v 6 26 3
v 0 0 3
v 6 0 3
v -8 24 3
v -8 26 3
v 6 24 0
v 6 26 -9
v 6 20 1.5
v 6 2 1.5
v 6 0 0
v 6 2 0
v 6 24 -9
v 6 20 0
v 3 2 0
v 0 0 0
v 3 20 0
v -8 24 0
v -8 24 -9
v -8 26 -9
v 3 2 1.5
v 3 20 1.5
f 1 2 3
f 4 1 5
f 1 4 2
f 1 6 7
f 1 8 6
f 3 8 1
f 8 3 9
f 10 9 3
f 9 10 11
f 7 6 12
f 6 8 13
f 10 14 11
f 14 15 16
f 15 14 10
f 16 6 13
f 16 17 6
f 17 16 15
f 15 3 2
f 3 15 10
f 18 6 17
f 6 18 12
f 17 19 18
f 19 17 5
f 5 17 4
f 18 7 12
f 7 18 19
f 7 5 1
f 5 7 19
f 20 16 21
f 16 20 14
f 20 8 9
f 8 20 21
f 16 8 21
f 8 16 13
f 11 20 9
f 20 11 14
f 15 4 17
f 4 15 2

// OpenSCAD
difference(){
// add stuff
group(){
translate([0,0,0])
    cube([6,(18+6),3]);

translate([-8,(18+6),-9])
cube([14,2,12]);
    
}

// take away
group(){
translate([3,2,0])
    cube([3,18,1.5]);
}
}

hull(){
translate([0,0,0])
    cube([1,1,3]);

translate([-8,(18+6),0])
    cube([8,2,3]);
}
